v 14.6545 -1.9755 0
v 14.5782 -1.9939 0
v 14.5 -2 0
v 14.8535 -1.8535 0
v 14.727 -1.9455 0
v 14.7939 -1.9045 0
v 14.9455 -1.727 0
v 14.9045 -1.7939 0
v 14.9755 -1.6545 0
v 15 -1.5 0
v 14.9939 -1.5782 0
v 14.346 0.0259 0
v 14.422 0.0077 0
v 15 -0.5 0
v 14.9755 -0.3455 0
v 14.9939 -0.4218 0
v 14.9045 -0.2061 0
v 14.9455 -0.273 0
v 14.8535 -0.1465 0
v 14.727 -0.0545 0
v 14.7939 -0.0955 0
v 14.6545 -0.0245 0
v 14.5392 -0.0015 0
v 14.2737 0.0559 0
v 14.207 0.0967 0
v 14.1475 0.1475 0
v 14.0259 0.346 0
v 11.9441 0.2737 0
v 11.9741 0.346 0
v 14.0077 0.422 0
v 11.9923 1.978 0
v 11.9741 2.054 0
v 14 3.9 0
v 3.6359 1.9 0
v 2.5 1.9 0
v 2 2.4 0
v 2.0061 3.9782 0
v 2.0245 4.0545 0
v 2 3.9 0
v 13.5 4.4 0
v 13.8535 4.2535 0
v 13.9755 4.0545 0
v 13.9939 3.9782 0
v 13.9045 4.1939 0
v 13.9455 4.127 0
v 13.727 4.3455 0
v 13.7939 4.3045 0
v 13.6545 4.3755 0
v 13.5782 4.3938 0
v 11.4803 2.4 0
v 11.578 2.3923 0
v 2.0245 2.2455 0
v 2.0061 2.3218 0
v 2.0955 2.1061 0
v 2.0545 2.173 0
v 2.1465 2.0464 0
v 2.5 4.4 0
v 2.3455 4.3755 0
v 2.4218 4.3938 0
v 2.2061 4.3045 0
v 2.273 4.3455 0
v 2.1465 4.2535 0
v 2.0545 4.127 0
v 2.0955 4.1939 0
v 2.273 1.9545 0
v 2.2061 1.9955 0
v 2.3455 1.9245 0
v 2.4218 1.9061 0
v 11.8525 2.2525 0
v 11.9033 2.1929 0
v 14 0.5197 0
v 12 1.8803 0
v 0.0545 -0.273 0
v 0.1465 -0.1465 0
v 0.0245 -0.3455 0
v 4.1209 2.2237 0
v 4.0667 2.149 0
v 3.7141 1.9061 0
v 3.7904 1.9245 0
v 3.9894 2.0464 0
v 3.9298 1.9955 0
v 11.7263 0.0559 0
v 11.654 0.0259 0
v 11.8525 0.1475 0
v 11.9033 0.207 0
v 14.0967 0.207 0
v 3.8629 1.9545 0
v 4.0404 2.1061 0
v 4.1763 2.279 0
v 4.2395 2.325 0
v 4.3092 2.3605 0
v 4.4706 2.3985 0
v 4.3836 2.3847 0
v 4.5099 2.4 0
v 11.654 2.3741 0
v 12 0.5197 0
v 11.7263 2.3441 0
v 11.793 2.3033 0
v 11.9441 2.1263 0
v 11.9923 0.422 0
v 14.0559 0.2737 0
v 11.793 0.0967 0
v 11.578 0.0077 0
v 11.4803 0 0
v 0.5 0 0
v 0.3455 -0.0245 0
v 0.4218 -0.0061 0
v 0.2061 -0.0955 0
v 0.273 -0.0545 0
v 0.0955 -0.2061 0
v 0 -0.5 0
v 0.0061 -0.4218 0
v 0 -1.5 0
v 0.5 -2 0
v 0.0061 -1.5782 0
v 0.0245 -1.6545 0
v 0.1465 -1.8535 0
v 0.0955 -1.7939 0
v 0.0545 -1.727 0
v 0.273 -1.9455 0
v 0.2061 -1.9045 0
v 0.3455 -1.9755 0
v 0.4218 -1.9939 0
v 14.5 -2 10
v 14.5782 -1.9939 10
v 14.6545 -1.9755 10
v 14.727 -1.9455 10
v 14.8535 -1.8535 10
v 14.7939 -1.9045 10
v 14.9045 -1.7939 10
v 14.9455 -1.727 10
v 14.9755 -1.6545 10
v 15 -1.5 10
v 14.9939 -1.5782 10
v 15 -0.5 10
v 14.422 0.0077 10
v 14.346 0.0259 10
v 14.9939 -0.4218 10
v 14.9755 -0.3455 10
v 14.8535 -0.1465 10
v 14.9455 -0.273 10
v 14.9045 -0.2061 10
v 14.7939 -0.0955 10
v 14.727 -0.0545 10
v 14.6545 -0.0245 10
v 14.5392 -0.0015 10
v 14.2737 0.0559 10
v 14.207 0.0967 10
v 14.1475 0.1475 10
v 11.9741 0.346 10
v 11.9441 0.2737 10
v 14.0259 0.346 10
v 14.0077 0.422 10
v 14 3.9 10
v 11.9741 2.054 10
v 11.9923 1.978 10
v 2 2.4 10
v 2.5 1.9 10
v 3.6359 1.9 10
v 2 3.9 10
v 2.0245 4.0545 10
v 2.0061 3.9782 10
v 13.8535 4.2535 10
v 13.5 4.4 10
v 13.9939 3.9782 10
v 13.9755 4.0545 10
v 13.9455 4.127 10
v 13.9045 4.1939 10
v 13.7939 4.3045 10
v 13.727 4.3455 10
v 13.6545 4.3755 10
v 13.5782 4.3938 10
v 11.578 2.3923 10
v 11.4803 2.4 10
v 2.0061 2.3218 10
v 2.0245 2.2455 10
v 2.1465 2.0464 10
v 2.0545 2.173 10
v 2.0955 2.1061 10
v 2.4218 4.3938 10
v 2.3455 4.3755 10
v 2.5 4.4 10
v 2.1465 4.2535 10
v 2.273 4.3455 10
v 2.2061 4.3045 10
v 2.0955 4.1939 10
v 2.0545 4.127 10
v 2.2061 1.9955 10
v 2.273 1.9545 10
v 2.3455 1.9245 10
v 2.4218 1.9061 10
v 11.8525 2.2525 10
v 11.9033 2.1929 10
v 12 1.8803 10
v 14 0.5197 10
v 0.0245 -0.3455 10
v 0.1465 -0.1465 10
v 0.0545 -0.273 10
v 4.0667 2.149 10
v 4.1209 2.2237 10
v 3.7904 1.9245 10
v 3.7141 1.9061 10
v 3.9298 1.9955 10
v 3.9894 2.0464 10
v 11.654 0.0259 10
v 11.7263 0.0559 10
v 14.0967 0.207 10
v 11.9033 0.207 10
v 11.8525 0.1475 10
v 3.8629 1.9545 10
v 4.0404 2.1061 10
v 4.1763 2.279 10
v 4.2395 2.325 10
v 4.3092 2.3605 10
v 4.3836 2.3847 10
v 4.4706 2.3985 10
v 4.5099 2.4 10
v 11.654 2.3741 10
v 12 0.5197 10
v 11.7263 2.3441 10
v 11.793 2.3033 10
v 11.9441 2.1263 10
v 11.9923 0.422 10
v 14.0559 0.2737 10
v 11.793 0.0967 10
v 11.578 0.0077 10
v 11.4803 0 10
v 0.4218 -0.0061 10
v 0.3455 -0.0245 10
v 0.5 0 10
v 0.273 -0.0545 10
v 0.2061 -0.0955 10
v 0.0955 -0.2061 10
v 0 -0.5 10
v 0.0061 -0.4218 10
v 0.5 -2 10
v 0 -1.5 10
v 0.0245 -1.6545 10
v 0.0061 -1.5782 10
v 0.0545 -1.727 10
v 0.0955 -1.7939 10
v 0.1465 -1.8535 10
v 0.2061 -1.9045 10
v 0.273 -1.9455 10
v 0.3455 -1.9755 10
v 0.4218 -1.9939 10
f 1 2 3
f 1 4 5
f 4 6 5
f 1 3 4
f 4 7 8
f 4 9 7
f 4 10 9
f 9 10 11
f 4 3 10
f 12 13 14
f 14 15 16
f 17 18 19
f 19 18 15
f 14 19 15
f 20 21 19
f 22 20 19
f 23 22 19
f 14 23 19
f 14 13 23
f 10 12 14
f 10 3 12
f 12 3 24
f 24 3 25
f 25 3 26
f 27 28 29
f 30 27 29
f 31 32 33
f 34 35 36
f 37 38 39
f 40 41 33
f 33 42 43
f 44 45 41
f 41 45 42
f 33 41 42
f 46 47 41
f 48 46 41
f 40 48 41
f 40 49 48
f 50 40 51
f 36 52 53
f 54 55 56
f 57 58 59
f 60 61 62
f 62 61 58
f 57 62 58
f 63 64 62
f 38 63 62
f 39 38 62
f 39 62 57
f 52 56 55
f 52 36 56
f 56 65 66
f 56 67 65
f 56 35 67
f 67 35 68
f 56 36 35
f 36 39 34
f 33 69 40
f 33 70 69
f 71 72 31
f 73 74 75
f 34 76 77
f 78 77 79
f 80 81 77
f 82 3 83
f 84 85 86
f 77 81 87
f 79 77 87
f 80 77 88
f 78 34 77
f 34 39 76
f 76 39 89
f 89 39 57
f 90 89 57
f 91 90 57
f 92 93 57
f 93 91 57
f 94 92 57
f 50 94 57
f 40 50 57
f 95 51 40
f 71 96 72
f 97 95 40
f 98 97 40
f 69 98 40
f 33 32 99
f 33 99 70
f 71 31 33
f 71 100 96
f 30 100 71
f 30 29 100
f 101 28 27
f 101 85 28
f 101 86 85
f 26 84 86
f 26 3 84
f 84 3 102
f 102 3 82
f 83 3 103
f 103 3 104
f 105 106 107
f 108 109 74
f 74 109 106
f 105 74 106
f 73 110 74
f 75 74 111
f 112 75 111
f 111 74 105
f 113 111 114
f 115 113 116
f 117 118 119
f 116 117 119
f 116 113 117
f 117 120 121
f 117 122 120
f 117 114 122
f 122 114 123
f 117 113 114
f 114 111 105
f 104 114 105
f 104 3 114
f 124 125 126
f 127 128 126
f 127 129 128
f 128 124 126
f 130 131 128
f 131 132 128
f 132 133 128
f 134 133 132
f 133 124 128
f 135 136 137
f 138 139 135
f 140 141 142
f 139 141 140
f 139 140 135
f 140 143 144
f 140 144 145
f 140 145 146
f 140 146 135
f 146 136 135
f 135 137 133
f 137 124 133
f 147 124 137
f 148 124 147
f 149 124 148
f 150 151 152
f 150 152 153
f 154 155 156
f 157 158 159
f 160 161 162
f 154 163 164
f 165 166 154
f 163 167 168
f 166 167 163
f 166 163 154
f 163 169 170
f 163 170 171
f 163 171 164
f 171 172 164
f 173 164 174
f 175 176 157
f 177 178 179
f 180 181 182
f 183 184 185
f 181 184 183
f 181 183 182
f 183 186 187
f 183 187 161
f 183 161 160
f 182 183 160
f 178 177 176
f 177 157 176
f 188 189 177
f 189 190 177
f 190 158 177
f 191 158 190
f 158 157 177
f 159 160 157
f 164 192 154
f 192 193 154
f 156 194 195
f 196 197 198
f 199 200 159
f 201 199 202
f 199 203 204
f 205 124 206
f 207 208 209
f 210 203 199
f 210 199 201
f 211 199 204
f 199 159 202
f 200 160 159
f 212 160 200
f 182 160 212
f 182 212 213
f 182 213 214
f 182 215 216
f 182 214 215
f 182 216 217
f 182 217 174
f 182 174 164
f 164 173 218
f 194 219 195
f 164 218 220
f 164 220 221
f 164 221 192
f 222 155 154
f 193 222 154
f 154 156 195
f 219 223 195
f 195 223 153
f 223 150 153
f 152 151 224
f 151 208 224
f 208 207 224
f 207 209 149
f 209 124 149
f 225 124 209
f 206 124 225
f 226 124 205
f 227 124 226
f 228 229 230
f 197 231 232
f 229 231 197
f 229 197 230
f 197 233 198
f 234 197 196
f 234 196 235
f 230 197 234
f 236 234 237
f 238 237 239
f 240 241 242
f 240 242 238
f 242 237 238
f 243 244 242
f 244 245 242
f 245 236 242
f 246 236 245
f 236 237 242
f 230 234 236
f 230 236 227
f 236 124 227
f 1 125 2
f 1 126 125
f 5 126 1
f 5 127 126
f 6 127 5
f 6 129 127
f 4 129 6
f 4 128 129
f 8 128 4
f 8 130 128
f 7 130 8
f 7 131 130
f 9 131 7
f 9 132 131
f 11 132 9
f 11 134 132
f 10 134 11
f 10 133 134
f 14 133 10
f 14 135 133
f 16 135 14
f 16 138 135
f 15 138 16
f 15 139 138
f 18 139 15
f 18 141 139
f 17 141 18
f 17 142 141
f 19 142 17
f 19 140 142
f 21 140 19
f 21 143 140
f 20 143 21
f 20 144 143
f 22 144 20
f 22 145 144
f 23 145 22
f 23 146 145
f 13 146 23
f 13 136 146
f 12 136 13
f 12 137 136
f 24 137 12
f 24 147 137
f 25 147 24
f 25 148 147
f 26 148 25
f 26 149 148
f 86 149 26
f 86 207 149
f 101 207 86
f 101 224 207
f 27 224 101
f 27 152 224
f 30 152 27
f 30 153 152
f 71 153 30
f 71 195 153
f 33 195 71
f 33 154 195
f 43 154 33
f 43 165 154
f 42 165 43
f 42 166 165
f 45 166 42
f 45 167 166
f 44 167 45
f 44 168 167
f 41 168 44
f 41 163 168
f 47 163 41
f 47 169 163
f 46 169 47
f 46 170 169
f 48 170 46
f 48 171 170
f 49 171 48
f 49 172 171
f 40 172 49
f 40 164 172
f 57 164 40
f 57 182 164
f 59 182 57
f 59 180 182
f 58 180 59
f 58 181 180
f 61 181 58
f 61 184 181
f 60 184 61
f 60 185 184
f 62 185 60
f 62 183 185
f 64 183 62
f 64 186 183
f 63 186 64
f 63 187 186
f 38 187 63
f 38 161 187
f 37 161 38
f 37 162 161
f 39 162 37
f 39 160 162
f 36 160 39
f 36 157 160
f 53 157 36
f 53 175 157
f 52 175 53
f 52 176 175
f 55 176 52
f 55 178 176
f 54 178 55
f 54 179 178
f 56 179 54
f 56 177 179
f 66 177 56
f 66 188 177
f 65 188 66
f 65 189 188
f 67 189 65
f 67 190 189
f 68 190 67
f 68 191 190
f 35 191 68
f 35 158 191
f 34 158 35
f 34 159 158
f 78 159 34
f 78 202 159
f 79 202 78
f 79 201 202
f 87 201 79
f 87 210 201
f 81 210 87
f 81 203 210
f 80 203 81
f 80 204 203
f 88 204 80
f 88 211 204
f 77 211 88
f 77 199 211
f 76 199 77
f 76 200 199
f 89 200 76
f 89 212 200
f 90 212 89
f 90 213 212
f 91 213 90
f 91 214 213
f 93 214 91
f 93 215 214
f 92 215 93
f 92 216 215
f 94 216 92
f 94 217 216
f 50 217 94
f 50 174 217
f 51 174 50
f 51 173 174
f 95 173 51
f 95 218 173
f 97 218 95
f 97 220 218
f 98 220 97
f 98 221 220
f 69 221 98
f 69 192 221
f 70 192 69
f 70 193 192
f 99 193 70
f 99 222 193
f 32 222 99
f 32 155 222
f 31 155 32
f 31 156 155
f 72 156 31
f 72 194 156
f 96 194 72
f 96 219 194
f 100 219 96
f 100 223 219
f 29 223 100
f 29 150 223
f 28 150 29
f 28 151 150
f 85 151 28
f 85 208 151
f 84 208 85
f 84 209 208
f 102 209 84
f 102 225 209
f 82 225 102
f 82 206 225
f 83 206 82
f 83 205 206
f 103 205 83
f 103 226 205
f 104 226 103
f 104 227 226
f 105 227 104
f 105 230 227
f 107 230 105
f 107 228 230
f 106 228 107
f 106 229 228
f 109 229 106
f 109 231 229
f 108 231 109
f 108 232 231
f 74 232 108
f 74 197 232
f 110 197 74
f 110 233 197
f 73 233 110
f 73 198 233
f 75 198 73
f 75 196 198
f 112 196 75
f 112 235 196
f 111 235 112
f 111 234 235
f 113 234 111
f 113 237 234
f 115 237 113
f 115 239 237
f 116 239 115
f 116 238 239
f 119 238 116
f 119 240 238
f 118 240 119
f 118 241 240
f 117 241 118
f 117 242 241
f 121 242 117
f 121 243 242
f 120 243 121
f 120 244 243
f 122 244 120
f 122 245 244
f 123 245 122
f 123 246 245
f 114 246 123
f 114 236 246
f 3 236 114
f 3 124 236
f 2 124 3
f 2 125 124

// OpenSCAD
$fn=40;

w=10;
wt=2;
bottom=1;
top=2;
lip=0.5;

inner_h=12;
inner_t=2.4;

r=0.5;

total_height=top+bottom+inner_h;
echo(total_height=total_height);


module side_profile()
{
    
    offset(r=r)
    offset(r=-2*r)
    offset(r=r)
    polygon([
        [0, 0],
        [0, -wt],
        [total_height, -wt],
        [total_height, 0],
        [top+inner_h, 0],
        [top+inner_h, inner_t+wt],
        [top, inner_t+wt],
        [top, inner_t-lip],
        [top+wt, inner_t-lip],
        [top+wt, inner_t],
        [top+inner_h-wt, inner_t],
        [top+inner_h-wt, 0]
    ]);
    
}


linear_extrude(w)
side_profile();
